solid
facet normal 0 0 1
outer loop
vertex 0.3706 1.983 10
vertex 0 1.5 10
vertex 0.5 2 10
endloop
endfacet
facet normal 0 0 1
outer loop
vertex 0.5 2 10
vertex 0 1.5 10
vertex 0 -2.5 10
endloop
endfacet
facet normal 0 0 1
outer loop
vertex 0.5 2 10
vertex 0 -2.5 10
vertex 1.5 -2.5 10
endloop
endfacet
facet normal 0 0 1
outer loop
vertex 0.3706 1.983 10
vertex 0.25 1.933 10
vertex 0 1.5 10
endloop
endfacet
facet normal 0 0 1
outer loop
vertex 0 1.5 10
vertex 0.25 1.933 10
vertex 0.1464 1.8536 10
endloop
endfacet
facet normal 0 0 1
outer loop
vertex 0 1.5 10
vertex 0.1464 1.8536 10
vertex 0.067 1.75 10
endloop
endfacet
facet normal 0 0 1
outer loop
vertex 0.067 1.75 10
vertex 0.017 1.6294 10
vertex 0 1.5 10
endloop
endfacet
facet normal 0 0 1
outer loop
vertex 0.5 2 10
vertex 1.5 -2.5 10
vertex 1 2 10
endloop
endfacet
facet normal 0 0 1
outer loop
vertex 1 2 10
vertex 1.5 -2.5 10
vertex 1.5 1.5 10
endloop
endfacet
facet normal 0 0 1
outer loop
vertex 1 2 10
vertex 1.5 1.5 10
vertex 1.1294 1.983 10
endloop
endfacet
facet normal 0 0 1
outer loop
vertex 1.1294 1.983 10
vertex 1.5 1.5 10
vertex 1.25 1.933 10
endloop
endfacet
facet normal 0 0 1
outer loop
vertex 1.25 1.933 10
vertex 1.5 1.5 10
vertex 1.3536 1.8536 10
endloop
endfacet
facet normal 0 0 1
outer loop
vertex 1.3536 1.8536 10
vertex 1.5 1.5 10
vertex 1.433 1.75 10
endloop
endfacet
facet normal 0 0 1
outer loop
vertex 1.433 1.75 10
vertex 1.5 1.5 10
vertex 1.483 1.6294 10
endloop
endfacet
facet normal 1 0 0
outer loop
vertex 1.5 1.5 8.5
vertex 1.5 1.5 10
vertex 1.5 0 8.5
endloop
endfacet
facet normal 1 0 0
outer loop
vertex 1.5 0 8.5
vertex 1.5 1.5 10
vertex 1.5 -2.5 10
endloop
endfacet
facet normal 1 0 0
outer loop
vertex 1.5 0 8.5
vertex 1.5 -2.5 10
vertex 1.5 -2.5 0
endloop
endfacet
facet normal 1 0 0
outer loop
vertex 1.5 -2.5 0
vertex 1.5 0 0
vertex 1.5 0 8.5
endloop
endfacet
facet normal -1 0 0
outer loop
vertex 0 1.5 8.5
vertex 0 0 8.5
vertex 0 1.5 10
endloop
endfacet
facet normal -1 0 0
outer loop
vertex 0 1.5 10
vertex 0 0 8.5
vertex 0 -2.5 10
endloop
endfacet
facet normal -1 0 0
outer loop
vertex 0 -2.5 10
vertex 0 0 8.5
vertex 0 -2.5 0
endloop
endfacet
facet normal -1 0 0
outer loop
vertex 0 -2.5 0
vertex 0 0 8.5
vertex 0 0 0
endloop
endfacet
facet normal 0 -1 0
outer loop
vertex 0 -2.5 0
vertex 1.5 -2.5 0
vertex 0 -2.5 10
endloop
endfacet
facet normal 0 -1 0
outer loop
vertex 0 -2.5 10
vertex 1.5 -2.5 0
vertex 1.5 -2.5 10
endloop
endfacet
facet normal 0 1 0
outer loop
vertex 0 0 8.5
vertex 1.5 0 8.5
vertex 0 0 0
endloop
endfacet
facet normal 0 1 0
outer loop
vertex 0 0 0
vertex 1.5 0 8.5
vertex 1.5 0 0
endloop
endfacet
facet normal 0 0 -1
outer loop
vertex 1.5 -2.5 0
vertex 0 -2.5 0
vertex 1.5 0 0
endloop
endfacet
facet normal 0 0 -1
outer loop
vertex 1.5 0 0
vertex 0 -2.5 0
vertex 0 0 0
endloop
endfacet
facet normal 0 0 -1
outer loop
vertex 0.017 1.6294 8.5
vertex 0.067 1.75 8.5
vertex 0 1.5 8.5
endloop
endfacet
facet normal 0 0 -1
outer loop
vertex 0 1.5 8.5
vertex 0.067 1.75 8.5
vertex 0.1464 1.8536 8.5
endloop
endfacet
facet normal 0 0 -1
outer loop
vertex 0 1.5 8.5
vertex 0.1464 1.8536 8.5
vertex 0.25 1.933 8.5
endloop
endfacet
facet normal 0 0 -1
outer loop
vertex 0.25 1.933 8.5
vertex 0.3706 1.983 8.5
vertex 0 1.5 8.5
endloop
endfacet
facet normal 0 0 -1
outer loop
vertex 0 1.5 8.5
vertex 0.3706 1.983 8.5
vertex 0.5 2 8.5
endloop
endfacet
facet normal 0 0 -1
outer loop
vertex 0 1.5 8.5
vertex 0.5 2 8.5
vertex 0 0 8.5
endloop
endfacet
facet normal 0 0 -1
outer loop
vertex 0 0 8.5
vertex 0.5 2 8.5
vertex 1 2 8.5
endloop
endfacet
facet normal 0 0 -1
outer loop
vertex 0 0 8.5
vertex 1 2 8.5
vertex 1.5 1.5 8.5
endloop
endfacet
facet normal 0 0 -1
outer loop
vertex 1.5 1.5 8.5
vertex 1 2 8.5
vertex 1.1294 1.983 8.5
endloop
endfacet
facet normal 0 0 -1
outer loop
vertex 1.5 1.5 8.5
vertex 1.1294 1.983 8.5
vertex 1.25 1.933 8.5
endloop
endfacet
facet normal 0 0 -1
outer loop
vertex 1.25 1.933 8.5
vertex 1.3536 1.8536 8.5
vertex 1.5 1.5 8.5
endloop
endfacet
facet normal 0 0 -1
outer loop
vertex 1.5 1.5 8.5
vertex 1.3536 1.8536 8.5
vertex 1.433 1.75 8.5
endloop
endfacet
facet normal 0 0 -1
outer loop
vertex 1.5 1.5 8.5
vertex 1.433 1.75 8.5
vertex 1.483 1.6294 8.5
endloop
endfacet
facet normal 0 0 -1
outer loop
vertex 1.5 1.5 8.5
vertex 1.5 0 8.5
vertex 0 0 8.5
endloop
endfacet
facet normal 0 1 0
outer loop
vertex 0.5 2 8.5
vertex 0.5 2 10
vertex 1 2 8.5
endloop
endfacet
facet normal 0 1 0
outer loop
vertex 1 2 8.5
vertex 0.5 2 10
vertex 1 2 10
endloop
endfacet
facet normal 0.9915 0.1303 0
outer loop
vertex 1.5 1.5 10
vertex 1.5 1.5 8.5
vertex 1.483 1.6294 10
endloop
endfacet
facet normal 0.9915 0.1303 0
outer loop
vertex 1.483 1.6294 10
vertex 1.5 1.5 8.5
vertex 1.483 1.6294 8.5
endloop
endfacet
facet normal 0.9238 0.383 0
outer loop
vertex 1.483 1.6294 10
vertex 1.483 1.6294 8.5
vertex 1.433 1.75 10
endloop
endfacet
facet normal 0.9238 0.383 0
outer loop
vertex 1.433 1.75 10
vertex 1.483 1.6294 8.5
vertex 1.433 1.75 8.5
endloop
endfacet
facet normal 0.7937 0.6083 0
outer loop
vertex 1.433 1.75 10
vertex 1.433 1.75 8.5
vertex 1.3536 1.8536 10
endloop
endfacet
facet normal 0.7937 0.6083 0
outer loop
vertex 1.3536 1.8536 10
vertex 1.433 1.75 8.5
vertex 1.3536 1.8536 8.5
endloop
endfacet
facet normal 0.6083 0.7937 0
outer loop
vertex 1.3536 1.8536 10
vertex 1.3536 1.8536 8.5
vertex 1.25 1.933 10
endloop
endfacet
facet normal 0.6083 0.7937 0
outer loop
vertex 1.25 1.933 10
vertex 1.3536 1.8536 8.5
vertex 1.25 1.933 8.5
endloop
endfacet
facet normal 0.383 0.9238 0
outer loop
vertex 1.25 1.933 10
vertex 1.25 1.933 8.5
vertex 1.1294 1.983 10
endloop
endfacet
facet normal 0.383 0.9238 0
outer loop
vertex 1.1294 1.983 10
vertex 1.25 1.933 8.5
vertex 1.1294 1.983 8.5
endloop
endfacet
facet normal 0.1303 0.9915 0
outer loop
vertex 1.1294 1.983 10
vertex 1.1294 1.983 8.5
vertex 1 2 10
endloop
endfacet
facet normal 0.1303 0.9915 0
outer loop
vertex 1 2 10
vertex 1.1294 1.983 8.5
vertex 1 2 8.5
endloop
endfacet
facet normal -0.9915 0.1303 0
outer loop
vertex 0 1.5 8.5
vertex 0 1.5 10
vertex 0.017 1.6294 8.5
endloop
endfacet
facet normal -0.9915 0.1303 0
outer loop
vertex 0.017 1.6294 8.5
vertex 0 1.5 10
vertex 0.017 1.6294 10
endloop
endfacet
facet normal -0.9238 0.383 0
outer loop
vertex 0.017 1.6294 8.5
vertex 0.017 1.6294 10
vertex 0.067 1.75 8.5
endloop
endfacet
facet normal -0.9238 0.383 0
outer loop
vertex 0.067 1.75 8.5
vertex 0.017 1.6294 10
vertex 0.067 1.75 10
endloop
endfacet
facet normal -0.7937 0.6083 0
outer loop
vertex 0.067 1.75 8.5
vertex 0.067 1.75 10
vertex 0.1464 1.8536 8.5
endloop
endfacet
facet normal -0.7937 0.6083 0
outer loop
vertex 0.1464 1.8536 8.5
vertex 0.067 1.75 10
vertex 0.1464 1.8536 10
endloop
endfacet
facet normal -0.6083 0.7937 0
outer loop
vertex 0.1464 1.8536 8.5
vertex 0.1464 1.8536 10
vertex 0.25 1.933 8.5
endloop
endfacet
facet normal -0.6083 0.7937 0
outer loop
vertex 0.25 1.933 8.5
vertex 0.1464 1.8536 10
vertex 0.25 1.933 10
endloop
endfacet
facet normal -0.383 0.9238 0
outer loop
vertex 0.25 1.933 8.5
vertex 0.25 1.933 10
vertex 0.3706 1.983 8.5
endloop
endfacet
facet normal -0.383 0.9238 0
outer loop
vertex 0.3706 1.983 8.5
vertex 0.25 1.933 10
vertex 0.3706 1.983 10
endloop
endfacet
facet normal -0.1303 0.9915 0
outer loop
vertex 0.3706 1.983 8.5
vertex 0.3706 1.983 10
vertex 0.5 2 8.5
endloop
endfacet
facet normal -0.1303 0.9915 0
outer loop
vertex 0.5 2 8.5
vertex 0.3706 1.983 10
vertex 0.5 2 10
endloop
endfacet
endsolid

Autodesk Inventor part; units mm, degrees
ref_plane "YZ Plane" through (0, 0, 0) normal (1, 0, 0) x (0, 1, 0)
ref_plane "XZ Plane" through (0, 0, 0) normal (0, 1, 0) x (-1, 0, 0)
ref_plane "XY Plane" through (0, 0, 0) normal (0, 0, 1) x (1, 0, 0)
sketch "Sketch1" plane through (0, 0, 0) normal (0, 0, 1) x (1, 0, 0)
  line L0 (0, 0) -> (1.5, 0)
  line L1 (1.5, 0) -> (1.5, -2.5)
  line L2 (1.5, -2.5) -> (0, -2.5)
  line L3 (0, -2.5) -> (0, 0)
  dimension "d0" = 1.5
  dimension "d1" = 2.5
extrude "Extrusion1" add sketch "Sketch1" along normal blind 10
sketch "Sketch2" plane through (0, 0, 0) normal (0, 1, 0) x (1, 0, 0)
  line L0 (0, -10) -> (1.5, -10) projected
  line L1 (1.5, 0) -> (1.5, -10) projected
  line L2 (0, -10) -> (1.5, -10)
  line L3 (1.5, -10) -> (1.5, -8.5)
  line L4 (1.5, -8.5) -> (0, -8.5)
  line L5 (0, -8.5) -> (0, -10)
  point P0 (0, 0)
  dimension "d4" = 1.5
extrude "Extrusion2" add sketch "Sketch2" along normal blind 2
fillet "Fillet1" radius 0.5 1 edges at (1.5, 2, 9.25)
fillet "Fillet2" radius 0.5 1 edges at (0, 2, 9.25)
properties part number "Key"
